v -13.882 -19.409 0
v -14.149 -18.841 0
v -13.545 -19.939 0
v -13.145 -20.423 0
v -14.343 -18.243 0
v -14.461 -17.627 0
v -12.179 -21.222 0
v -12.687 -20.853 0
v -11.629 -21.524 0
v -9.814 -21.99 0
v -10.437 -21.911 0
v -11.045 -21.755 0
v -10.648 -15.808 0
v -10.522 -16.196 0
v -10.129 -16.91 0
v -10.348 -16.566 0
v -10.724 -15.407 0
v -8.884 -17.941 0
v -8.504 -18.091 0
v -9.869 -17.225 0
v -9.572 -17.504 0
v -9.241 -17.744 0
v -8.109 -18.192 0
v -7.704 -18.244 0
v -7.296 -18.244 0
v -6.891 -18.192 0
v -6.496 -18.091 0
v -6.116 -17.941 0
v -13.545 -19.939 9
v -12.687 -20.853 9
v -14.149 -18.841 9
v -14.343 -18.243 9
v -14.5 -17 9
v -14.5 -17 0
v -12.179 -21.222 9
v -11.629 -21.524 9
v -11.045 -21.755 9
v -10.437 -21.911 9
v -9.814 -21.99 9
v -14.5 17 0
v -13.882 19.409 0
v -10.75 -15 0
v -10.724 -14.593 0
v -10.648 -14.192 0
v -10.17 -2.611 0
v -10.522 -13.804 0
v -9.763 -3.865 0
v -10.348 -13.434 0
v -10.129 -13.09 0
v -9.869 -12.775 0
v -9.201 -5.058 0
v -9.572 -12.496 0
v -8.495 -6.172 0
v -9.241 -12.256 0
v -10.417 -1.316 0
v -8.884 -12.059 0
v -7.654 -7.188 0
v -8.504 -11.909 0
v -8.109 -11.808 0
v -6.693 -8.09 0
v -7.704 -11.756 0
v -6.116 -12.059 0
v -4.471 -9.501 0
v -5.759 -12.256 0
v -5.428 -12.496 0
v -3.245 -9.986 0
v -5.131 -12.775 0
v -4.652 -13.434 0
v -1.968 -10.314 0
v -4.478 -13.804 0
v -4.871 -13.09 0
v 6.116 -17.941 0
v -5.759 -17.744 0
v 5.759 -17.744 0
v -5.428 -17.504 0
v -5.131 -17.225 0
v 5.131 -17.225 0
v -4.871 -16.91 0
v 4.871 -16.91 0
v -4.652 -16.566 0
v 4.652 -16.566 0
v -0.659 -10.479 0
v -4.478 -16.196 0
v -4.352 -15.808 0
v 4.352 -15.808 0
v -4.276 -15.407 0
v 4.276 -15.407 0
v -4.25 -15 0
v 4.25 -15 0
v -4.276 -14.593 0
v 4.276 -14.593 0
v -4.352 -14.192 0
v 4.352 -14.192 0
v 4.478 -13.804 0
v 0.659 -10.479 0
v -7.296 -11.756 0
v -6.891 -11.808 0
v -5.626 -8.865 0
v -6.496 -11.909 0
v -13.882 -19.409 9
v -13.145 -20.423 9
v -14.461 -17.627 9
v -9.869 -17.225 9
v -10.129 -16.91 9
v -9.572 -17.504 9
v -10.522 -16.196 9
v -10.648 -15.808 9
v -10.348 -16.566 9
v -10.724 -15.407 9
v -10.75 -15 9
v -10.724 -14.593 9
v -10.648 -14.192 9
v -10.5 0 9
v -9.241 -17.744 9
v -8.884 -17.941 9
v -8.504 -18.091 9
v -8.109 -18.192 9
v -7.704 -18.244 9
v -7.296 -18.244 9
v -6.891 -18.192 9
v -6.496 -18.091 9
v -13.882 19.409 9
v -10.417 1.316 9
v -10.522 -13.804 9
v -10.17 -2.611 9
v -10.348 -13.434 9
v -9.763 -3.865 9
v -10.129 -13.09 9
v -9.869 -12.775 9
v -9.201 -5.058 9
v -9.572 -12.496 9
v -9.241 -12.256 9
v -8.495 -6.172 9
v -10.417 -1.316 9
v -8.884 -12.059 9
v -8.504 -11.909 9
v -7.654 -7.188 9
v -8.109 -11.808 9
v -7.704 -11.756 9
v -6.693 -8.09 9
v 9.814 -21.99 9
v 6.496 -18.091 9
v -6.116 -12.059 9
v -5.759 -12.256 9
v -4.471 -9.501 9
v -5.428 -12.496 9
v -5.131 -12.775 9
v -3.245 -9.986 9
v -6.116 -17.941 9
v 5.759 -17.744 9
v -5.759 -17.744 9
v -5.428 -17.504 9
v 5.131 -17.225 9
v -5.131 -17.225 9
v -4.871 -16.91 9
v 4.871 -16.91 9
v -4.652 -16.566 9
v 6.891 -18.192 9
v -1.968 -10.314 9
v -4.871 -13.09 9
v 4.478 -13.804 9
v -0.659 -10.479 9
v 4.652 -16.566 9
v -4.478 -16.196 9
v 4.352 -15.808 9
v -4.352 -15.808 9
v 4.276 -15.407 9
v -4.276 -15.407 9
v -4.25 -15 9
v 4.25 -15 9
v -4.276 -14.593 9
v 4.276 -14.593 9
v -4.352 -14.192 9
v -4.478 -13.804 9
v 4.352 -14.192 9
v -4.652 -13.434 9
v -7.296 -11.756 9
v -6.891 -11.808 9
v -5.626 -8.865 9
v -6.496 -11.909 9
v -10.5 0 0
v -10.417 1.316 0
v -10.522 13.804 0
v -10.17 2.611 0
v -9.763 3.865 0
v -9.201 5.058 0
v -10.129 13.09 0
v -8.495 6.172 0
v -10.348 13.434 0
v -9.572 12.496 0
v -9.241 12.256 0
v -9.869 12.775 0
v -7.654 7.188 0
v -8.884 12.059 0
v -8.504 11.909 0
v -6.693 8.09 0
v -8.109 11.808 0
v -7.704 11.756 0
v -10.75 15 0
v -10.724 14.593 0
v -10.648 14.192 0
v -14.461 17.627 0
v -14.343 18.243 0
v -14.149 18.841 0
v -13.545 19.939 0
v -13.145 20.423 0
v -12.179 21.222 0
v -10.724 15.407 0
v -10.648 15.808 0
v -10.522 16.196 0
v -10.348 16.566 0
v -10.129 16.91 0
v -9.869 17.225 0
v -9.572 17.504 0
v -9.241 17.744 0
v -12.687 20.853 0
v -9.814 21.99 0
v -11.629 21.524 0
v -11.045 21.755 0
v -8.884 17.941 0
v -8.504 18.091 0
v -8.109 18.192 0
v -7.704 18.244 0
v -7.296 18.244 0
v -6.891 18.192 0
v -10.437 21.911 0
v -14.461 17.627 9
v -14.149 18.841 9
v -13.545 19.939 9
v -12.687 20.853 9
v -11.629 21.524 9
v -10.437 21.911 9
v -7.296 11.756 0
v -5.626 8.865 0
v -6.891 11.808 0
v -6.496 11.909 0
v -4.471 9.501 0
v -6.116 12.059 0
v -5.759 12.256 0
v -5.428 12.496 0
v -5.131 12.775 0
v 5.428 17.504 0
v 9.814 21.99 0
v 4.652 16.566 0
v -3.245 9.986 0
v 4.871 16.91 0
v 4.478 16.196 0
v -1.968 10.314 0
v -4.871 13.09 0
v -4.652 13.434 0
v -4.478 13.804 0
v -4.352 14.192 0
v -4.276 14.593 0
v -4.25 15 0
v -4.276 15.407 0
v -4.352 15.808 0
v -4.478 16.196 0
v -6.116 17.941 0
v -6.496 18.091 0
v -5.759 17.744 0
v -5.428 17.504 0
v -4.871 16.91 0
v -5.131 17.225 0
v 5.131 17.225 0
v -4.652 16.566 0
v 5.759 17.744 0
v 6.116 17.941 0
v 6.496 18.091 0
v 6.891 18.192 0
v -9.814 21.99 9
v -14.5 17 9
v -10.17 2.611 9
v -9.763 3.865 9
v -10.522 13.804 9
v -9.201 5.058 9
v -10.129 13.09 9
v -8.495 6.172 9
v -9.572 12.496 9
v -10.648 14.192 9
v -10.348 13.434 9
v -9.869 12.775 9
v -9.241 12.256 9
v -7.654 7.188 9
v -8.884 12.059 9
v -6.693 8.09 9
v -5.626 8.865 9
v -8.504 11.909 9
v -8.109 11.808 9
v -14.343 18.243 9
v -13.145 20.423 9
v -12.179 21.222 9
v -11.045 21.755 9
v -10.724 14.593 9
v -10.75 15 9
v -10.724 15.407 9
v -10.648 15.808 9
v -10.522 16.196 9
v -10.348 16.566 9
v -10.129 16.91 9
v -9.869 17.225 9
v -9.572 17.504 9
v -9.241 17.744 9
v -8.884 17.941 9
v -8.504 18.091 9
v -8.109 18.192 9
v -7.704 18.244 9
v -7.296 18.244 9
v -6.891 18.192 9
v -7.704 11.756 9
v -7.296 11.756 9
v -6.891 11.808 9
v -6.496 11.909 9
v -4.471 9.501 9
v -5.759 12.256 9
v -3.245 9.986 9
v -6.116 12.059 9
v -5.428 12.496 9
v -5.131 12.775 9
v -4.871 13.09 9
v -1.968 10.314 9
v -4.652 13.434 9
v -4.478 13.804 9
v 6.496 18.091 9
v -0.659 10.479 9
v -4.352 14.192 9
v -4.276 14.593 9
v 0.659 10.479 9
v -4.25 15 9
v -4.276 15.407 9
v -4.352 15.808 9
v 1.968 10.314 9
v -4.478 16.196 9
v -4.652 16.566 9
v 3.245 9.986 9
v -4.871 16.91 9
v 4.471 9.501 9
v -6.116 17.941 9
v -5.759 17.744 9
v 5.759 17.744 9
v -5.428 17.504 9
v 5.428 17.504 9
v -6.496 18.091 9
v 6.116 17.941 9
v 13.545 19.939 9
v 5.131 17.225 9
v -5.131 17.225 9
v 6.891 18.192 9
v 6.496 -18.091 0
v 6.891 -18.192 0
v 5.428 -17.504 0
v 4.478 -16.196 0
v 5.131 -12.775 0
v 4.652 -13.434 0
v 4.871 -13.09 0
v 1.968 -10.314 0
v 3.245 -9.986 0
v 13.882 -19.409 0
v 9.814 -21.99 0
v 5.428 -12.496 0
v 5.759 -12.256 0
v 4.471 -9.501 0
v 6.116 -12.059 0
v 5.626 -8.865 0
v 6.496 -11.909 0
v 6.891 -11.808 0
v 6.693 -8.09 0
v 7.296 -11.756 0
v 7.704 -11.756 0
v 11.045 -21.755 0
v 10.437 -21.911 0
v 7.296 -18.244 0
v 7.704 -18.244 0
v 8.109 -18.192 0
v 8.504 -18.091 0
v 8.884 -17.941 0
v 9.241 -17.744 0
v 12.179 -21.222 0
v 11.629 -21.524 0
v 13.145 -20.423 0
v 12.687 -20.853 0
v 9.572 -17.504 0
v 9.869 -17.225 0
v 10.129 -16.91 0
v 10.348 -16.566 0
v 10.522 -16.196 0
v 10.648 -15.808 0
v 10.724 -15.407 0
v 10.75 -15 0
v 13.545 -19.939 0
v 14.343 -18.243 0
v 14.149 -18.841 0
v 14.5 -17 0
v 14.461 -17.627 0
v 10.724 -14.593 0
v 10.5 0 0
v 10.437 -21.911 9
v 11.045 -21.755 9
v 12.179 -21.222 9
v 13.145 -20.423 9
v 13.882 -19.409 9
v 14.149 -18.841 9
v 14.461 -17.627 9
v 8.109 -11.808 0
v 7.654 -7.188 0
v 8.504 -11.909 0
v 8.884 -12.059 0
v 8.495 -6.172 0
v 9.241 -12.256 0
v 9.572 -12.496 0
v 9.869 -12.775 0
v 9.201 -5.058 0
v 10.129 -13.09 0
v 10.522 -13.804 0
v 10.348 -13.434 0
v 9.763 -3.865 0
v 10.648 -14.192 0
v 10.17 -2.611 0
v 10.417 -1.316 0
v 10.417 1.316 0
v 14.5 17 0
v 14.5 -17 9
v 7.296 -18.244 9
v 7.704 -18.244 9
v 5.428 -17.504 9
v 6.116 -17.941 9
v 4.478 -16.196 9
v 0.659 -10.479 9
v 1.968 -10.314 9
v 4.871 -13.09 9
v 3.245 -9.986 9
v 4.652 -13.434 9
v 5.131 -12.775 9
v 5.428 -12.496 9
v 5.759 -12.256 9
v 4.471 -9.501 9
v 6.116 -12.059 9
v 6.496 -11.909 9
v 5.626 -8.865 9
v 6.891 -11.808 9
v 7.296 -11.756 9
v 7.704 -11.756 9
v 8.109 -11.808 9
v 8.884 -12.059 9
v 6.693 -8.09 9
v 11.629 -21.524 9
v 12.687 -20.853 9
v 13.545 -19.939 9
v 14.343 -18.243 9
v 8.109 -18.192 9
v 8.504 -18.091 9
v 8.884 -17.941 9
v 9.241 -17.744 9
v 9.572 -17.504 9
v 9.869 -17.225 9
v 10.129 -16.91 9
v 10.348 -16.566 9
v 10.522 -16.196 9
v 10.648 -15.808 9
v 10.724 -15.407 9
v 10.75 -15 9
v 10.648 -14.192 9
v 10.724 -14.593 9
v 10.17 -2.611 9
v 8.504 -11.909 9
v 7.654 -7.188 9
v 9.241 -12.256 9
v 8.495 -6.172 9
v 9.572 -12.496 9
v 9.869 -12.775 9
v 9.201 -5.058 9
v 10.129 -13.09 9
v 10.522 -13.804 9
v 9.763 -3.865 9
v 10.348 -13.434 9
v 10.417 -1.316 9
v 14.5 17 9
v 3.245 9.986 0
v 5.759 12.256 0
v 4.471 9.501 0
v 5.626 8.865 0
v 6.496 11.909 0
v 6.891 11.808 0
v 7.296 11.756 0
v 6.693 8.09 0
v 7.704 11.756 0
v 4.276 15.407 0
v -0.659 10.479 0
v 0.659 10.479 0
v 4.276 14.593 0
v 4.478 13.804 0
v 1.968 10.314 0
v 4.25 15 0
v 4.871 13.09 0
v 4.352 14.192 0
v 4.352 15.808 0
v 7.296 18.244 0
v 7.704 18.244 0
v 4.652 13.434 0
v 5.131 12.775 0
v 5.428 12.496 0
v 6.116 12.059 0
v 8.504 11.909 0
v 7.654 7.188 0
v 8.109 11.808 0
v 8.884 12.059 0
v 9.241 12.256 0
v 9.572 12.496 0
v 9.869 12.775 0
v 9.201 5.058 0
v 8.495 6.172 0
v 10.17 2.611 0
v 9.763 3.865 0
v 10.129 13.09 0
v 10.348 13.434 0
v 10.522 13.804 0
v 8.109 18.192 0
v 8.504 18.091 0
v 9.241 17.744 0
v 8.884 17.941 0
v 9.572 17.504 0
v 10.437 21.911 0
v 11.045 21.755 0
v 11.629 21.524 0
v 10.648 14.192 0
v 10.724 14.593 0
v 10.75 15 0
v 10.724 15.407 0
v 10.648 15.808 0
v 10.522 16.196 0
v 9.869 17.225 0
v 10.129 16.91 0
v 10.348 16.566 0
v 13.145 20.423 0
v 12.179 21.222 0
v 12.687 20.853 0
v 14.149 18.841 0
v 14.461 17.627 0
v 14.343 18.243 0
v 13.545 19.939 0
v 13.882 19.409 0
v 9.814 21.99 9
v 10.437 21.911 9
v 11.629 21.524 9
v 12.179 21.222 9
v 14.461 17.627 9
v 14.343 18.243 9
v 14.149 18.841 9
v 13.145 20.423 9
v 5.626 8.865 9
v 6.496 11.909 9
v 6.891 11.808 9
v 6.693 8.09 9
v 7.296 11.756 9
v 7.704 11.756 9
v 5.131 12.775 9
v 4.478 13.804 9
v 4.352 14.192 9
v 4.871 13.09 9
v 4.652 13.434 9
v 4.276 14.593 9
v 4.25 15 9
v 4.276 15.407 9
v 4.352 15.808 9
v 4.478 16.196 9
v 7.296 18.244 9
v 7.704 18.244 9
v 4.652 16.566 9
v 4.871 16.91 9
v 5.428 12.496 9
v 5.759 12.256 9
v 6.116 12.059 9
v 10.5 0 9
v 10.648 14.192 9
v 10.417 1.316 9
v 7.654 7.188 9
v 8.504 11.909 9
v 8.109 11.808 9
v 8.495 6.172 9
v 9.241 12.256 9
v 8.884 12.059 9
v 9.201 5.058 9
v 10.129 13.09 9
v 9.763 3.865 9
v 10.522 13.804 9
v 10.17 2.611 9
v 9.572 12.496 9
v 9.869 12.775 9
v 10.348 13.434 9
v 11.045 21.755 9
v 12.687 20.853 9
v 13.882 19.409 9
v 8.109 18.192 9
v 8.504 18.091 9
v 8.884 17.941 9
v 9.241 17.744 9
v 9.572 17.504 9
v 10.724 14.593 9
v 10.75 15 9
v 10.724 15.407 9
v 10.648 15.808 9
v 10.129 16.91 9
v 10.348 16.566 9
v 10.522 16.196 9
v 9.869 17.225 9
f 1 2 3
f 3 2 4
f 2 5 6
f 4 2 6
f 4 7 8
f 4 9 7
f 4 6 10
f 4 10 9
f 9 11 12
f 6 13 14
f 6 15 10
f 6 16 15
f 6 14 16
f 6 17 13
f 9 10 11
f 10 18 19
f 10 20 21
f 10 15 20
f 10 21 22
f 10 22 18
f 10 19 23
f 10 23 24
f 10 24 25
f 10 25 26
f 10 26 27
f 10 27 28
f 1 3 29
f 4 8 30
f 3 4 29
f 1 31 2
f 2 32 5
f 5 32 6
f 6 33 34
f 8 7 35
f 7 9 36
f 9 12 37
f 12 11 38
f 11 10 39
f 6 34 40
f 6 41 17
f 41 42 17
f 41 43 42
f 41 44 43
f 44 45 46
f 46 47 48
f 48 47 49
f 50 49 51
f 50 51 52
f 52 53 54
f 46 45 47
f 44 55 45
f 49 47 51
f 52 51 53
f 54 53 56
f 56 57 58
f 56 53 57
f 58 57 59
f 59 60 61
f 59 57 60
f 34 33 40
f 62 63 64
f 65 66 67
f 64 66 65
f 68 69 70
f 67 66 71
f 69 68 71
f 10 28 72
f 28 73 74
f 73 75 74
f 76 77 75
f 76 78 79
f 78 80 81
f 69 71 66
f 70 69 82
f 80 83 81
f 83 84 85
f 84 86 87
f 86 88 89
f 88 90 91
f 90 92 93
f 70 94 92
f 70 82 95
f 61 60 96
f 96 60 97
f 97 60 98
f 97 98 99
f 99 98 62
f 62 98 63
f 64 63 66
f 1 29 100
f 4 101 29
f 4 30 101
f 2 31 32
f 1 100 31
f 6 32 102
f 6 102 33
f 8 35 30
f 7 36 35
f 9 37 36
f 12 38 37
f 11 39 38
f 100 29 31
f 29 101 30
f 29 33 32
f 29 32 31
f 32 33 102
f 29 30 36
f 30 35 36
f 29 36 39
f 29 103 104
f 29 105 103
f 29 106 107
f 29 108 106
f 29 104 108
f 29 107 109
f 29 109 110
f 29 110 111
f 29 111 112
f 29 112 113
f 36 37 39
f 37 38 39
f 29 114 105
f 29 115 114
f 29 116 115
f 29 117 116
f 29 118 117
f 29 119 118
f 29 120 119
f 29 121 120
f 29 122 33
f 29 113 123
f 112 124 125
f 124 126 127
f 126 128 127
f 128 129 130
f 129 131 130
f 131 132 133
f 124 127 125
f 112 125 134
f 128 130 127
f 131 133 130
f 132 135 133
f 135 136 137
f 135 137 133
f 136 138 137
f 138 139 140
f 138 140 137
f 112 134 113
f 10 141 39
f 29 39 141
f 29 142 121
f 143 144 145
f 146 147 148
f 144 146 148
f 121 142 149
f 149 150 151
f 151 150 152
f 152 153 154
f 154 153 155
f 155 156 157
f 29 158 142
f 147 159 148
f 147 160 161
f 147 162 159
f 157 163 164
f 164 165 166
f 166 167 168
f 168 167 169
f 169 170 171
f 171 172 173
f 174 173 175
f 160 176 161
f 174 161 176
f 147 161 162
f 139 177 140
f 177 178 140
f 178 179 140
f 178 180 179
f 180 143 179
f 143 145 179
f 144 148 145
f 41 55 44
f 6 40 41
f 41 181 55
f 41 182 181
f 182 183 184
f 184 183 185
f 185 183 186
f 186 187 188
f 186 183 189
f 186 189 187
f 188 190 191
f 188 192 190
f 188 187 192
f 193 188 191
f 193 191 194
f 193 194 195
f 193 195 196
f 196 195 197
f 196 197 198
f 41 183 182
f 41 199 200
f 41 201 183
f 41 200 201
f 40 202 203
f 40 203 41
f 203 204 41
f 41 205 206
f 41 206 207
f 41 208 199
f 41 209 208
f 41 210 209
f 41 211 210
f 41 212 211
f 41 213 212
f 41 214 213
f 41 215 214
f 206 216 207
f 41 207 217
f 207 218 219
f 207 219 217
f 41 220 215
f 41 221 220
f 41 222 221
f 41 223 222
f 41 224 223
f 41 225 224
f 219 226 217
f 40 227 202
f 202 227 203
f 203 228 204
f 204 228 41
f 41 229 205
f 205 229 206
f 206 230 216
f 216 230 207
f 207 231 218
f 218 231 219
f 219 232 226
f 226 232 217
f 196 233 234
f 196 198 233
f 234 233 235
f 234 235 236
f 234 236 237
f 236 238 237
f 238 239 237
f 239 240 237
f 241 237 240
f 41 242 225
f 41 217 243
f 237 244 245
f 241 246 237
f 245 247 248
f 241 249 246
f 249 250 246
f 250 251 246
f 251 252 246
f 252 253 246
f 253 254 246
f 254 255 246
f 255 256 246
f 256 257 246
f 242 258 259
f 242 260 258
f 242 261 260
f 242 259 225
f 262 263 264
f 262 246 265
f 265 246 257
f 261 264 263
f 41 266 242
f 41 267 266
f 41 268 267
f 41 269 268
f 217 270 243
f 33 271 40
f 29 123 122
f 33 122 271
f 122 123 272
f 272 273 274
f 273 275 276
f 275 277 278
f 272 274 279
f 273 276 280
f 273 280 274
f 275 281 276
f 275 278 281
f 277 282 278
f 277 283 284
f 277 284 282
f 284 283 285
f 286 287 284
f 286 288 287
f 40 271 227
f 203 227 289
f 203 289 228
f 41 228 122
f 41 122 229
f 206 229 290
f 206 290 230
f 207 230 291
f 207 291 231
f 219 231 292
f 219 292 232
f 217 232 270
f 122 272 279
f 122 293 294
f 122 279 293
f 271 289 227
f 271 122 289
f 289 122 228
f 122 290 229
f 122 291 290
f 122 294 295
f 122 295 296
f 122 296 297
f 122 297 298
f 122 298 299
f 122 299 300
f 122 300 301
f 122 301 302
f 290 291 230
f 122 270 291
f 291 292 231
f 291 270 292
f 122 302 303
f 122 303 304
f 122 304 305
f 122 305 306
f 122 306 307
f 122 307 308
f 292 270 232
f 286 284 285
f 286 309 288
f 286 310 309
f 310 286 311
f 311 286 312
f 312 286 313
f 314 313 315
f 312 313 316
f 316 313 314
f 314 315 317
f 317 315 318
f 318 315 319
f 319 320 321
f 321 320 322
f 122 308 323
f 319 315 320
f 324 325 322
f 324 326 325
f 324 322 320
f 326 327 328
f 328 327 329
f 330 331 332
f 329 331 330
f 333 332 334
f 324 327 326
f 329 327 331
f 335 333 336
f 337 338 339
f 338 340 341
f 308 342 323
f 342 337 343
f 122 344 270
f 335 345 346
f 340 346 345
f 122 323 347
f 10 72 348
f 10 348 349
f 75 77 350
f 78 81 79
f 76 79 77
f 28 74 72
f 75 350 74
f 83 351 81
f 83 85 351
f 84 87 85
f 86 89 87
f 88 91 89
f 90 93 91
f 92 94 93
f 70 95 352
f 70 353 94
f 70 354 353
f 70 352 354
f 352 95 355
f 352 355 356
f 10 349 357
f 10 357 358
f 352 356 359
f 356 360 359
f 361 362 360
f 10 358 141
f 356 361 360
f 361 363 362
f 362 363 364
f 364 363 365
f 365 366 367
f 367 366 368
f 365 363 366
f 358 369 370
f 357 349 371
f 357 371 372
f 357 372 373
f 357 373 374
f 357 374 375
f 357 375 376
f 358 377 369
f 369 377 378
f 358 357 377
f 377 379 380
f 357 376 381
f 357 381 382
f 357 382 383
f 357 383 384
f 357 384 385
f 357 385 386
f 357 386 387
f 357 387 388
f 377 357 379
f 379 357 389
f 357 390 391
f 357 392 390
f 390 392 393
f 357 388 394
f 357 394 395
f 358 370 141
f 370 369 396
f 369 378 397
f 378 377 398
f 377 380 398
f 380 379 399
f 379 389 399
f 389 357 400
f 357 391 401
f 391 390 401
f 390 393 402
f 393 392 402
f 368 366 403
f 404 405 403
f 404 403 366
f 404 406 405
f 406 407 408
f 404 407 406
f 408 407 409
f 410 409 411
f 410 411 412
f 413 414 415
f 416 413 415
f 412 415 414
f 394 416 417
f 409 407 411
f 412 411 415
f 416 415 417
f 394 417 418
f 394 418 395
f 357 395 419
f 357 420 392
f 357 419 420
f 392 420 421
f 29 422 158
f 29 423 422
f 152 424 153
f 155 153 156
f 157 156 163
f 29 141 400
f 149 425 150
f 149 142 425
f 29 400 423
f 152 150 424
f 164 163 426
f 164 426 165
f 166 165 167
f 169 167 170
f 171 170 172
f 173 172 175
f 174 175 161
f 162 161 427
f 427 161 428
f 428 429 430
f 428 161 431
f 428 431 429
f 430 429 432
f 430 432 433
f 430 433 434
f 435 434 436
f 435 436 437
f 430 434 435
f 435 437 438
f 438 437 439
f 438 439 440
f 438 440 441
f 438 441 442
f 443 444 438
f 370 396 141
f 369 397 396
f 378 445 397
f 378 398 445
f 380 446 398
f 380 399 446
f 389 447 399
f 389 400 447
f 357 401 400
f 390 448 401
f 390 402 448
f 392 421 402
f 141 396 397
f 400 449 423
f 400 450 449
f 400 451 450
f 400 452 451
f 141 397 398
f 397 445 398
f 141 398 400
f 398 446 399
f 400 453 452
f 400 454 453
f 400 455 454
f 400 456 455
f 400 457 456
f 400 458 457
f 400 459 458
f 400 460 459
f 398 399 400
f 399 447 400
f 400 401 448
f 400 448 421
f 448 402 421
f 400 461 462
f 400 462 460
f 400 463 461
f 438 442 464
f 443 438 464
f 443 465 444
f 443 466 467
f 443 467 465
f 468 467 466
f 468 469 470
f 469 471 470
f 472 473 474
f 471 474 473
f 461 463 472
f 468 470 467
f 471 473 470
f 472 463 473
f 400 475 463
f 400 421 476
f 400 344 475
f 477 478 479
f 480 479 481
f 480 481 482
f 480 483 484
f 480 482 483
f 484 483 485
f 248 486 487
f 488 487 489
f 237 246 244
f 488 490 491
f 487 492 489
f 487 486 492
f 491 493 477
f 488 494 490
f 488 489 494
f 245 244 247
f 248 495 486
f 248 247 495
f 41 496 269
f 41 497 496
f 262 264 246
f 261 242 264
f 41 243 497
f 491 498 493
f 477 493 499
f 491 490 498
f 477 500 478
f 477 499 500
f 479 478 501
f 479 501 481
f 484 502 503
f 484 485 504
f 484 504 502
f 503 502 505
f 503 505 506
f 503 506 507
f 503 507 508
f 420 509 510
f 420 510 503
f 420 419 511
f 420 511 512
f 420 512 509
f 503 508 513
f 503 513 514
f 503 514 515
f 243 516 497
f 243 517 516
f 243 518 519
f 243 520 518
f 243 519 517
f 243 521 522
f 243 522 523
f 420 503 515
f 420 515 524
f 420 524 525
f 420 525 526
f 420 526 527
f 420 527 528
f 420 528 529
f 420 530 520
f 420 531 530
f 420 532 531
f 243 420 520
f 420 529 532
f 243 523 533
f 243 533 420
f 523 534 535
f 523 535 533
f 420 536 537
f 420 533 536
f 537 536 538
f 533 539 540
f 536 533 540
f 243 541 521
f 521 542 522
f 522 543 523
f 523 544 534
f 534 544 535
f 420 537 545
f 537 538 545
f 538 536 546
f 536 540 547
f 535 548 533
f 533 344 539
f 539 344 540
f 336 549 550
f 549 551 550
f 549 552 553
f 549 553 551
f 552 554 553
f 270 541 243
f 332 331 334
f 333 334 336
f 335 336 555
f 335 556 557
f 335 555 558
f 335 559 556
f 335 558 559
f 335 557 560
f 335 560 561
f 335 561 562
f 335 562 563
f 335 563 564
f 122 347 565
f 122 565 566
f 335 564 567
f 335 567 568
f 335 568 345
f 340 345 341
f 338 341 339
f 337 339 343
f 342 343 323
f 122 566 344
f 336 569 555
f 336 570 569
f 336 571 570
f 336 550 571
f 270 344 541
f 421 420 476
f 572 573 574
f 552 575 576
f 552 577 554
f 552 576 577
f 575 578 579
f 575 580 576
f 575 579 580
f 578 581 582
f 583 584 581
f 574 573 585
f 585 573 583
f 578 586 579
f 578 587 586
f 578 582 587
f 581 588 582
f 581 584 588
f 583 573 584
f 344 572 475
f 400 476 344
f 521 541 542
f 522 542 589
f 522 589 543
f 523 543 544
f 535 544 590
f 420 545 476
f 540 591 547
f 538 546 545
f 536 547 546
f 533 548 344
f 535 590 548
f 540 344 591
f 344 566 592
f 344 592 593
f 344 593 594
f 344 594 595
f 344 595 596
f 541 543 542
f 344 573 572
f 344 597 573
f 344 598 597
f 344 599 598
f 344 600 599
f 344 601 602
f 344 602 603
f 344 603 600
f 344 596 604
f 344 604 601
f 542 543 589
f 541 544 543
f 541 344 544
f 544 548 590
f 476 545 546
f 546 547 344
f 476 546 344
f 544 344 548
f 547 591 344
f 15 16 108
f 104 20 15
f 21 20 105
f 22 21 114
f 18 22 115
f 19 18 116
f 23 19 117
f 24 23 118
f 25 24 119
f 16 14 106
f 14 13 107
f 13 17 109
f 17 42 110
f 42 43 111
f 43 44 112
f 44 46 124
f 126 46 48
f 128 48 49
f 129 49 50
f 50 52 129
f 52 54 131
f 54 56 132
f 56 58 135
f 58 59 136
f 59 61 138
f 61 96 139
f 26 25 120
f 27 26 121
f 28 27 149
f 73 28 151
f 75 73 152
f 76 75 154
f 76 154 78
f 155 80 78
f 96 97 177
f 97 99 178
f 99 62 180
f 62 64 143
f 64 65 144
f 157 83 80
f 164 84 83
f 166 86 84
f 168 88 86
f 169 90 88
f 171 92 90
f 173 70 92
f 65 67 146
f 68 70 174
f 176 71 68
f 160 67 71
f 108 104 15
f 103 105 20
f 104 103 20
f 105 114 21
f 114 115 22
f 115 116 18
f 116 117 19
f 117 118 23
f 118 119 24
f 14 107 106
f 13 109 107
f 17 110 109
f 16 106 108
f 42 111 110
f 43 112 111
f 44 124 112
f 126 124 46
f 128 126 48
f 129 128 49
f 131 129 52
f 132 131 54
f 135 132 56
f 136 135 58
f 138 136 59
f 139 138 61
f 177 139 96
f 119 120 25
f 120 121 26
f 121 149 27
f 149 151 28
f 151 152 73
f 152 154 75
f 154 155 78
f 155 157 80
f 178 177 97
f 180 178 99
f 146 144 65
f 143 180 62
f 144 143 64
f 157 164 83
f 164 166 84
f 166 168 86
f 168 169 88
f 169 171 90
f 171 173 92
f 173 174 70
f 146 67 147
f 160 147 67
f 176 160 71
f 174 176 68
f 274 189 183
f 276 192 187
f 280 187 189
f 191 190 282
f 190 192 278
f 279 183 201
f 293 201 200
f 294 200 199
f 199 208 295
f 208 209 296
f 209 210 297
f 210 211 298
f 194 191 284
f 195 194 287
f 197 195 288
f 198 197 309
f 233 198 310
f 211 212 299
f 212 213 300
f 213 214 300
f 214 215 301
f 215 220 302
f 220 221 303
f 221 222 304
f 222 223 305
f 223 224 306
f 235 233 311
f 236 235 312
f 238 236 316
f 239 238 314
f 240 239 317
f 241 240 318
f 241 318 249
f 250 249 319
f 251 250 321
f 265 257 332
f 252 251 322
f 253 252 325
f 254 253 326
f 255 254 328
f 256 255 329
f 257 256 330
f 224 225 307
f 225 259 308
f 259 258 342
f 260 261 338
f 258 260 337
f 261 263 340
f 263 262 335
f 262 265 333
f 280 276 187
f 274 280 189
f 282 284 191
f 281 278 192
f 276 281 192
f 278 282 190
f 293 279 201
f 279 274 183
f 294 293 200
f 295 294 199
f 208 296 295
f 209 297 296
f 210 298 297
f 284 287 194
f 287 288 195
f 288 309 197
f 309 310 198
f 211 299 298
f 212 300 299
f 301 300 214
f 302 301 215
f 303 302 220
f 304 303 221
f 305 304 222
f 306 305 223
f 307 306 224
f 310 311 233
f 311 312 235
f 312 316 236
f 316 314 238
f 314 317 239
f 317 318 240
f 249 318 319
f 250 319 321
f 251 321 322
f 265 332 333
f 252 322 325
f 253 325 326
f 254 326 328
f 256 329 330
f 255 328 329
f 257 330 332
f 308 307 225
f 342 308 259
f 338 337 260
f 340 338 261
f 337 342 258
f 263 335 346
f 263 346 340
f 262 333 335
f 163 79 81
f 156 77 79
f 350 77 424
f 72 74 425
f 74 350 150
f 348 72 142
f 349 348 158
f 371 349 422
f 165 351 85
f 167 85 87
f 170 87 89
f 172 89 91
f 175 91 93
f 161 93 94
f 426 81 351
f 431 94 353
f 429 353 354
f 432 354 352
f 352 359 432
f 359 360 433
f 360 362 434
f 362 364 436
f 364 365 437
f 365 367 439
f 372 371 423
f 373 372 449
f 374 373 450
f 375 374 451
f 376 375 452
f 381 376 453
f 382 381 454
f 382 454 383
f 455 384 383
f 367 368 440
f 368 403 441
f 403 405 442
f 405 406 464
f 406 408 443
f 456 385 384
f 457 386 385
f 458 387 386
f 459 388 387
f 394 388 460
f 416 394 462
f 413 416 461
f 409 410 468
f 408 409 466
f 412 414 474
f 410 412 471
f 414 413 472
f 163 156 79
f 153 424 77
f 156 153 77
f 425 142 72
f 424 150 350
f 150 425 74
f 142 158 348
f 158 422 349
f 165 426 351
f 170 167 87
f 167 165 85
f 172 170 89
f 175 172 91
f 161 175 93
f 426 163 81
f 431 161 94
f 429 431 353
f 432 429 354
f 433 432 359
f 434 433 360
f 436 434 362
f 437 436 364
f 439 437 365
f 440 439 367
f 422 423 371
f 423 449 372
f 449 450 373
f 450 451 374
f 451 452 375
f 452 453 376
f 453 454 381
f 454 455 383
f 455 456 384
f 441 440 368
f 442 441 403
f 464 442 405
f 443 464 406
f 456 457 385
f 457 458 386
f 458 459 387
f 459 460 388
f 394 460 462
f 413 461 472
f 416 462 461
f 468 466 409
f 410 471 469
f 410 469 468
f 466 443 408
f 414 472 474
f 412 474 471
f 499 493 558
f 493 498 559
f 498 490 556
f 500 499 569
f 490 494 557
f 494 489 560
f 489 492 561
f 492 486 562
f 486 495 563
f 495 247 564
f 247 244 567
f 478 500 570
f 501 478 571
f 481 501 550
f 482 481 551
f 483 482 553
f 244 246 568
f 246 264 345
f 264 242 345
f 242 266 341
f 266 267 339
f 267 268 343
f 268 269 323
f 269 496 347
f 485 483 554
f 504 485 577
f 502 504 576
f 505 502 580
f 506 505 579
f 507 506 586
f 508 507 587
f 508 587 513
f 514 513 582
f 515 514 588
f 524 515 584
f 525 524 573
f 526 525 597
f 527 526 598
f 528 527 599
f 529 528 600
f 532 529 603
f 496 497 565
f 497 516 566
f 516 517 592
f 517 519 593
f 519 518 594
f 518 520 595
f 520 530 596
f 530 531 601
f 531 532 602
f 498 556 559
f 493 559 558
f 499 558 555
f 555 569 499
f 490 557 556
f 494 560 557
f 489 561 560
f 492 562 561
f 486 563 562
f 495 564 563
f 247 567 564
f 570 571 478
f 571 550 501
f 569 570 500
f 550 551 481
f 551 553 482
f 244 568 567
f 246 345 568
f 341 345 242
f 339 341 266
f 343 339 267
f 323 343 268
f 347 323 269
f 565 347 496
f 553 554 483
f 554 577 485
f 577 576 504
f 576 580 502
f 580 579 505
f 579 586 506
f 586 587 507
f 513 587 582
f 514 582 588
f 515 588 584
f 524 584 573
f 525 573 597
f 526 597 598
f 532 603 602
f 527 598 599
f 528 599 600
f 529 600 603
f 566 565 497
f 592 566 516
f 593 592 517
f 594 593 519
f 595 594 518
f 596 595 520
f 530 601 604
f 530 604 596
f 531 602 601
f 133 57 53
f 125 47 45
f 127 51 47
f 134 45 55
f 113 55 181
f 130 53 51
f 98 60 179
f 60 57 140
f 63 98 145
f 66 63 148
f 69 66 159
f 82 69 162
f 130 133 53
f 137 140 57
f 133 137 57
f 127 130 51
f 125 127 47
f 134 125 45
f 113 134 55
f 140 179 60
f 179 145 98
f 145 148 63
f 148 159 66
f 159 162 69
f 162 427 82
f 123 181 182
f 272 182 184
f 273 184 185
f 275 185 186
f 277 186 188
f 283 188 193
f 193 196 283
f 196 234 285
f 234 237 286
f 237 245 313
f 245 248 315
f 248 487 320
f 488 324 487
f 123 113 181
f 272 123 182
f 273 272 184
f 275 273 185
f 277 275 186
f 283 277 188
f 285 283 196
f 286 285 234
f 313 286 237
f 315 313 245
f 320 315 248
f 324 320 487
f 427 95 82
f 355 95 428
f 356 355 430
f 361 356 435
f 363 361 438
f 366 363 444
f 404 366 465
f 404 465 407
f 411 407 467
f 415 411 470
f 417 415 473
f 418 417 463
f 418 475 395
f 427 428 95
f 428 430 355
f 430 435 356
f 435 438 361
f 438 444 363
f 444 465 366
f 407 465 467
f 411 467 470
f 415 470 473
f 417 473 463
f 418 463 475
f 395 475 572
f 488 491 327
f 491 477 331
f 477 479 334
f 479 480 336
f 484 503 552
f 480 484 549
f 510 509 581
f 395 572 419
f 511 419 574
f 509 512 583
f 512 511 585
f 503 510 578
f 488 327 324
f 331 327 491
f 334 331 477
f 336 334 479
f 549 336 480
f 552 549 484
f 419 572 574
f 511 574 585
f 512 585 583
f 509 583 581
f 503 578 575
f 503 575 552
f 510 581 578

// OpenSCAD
$fn = 50;

difference() {
	union() {
		hull() {
			translate(v = [-9.5, 17.0, 0]) {
				cylinder(h = 9, r = 5);
			}
			translate(v = [9.5, 17.0, 0]) {
				cylinder(h = 9, r = 5);
			}
			translate(v = [-9.5, -17.0, 0]) {
				cylinder(h = 9, r = 5);
			}
			translate(v = [9.5, -17.0, 0]) {
				cylinder(h = 9, r = 5);
			}
		}
	}
	union() {
		translate(v = [-7.5, -15.0, 0]) {
			cylinder(h = 9, r = 3.25);
		}
		translate(v = [-7.5, 15.0, 0]) {
			cylinder(h = 9, r = 3.25);
		}
		translate(v = [7.5, -15.0, 0]) {
			cylinder(h = 9, r = 3.25);
		}
		translate(v = [7.5, 15.0, 0]) {
			cylinder(h = 9, r = 3.25);
		}
		cylinder(h = 9, r = 10.5);
	}
}
